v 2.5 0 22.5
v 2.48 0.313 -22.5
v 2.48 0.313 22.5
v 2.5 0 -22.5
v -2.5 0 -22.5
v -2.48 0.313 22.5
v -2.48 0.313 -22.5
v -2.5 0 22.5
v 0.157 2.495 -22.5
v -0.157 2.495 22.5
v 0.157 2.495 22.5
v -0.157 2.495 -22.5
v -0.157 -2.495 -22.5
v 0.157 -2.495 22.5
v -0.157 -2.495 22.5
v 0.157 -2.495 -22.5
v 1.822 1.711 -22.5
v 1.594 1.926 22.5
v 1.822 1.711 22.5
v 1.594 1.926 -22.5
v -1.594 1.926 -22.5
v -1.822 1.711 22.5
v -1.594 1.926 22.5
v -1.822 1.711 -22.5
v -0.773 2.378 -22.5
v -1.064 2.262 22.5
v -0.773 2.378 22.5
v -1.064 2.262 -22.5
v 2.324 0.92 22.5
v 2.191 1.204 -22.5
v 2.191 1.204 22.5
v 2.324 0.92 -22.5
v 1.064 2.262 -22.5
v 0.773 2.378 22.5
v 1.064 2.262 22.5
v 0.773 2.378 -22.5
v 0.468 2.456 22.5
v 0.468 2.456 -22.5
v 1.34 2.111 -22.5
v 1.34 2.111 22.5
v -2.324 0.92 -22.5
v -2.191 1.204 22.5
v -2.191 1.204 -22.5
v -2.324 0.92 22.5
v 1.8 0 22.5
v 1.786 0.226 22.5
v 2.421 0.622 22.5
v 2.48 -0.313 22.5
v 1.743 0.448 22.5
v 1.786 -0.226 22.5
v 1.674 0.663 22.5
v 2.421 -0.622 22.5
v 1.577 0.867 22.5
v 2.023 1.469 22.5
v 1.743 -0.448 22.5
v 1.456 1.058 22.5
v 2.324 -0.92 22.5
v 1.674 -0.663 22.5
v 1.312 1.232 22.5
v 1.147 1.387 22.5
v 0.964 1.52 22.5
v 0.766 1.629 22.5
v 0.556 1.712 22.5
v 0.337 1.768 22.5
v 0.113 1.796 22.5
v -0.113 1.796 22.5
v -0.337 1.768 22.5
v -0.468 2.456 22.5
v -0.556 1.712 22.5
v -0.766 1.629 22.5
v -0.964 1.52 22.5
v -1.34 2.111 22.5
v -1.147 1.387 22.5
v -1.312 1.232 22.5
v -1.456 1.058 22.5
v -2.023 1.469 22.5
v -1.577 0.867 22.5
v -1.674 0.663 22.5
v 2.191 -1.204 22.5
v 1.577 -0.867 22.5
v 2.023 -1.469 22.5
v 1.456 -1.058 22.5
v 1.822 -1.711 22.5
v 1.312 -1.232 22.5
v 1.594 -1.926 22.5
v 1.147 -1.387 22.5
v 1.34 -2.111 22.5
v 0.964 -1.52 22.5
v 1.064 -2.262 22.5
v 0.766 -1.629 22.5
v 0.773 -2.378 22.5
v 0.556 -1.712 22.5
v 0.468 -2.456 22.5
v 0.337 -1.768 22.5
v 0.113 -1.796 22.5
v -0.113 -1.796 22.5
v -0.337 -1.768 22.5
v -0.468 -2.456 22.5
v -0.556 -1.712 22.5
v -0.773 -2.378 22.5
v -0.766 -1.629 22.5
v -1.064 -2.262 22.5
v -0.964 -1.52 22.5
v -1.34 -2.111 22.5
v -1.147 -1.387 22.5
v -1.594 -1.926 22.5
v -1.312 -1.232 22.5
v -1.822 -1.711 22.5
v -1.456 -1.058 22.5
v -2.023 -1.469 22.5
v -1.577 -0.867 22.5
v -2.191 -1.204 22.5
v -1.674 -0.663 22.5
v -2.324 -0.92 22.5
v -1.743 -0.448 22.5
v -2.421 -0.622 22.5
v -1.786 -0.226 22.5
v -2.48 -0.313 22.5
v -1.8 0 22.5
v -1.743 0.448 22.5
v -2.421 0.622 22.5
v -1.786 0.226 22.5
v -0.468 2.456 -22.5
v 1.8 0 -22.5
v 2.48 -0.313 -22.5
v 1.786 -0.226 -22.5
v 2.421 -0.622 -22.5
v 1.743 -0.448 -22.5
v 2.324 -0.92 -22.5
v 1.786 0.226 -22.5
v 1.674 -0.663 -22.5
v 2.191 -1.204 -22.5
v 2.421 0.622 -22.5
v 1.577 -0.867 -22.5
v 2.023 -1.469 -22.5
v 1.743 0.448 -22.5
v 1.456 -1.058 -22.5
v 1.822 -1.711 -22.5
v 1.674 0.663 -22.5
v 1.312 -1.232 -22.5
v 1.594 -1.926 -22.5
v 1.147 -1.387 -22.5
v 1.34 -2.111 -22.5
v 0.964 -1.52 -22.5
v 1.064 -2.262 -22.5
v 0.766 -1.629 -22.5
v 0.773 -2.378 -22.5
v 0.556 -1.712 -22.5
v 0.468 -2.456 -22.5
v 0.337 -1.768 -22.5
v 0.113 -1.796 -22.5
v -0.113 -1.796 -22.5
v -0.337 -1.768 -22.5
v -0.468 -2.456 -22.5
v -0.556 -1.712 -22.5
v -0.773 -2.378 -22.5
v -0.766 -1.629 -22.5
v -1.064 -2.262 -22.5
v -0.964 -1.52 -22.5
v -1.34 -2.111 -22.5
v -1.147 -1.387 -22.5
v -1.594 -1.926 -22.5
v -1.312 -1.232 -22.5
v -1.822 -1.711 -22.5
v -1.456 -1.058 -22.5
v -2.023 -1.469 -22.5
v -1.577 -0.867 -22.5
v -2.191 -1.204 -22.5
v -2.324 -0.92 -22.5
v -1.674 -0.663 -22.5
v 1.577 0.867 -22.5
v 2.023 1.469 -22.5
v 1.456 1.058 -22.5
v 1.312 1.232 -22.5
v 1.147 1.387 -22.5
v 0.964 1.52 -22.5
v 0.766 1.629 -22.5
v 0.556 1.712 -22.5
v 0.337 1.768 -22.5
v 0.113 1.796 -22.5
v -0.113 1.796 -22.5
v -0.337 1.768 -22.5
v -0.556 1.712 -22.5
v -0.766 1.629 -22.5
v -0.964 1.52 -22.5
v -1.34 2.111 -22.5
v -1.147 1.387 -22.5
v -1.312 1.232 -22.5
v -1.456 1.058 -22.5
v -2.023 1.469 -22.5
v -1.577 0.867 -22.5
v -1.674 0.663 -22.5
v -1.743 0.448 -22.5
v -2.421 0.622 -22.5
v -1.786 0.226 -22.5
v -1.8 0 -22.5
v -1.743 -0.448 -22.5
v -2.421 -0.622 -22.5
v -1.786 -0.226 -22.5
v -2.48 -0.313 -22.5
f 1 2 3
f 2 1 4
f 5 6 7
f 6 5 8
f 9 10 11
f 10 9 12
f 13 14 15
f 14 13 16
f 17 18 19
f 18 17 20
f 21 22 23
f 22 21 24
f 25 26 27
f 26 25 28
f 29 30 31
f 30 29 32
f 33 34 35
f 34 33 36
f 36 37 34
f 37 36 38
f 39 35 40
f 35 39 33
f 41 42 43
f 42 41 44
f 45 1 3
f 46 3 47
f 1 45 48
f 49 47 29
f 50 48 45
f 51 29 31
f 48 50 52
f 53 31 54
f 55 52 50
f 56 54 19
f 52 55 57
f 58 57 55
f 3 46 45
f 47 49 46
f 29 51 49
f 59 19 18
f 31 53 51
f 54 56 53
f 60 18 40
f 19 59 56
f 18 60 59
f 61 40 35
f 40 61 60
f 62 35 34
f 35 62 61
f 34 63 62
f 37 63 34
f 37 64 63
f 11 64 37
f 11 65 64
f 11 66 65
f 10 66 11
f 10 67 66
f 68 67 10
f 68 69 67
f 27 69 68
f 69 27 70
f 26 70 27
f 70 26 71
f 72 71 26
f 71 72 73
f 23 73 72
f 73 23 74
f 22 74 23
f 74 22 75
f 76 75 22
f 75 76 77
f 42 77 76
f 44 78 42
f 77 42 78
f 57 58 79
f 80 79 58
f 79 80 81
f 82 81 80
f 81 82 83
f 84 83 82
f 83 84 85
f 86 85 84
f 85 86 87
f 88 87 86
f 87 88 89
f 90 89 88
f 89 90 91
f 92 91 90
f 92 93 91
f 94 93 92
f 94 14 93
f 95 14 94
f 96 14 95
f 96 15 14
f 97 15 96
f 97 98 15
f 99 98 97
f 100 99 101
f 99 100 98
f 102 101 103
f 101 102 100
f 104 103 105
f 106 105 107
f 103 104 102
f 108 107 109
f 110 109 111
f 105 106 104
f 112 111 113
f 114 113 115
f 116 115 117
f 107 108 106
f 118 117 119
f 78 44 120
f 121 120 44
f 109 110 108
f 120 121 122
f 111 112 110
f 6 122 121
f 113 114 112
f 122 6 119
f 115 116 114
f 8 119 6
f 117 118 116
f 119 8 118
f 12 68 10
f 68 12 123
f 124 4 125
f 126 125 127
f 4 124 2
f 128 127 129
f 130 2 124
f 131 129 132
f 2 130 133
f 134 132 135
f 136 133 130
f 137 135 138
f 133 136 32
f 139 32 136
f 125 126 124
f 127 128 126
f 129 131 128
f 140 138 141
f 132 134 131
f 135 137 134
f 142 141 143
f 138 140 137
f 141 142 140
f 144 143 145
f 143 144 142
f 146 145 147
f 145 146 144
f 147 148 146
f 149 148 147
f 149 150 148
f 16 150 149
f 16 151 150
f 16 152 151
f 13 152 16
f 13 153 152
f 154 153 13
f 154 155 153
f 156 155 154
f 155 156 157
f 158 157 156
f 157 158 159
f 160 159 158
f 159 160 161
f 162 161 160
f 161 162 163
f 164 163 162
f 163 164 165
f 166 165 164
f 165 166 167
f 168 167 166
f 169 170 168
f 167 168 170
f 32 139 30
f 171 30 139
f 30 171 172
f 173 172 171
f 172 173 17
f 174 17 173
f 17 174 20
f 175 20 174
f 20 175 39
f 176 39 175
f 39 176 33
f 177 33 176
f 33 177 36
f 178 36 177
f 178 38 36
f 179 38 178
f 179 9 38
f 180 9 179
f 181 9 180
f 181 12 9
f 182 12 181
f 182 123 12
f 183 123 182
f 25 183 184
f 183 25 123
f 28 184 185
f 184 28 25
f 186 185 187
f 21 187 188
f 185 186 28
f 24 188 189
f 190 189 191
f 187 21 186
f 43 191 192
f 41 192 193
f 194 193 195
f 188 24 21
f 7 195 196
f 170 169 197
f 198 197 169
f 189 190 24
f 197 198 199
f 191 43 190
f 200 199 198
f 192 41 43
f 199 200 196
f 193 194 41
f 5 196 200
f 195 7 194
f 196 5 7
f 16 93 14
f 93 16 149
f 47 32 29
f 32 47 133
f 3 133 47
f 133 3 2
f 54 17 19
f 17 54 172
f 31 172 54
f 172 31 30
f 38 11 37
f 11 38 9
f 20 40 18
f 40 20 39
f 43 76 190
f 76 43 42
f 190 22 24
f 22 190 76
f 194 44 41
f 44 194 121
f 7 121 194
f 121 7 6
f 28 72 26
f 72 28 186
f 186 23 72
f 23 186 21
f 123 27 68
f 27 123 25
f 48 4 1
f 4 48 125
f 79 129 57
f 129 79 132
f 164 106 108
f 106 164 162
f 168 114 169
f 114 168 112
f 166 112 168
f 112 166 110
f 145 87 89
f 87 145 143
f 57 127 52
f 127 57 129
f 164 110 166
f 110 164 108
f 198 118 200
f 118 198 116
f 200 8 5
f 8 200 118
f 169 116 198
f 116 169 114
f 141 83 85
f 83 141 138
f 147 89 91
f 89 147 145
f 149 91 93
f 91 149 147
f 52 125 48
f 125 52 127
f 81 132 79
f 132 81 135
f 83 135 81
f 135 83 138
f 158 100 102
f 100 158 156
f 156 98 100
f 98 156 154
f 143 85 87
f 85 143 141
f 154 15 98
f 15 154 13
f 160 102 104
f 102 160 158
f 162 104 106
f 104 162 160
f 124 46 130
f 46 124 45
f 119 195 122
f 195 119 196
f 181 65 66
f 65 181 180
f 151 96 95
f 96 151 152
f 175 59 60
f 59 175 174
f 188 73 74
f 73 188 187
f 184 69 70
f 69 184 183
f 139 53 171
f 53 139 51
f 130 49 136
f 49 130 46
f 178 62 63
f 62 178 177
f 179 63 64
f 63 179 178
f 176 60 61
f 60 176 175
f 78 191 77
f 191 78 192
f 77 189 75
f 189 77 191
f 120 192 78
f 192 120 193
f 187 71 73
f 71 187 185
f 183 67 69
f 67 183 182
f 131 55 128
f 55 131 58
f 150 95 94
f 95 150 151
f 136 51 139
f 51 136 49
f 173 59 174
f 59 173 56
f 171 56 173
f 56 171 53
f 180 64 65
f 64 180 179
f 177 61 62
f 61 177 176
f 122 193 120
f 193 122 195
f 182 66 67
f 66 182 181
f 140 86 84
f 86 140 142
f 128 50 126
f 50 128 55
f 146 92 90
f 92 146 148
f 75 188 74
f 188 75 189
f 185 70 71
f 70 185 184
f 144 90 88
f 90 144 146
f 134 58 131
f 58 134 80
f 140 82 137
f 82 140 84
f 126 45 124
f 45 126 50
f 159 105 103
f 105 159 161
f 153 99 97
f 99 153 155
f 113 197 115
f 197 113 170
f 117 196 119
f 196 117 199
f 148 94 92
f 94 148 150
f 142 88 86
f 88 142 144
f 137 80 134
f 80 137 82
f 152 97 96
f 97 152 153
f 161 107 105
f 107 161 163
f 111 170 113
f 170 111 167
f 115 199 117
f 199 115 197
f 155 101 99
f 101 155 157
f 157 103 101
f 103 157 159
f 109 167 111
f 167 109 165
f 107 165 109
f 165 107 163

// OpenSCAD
$fn = 50;


difference() {
	union() {
		translate(v = [0, 0, -22.5000000000]) {
			cylinder(h = 45, r = 2.5000000000);
		}
	}
	union() {
		translate(v = [0, 0, -100.0000000000]) {
			cylinder(h = 200, r = 1.8000000000);
		}
	}
}
